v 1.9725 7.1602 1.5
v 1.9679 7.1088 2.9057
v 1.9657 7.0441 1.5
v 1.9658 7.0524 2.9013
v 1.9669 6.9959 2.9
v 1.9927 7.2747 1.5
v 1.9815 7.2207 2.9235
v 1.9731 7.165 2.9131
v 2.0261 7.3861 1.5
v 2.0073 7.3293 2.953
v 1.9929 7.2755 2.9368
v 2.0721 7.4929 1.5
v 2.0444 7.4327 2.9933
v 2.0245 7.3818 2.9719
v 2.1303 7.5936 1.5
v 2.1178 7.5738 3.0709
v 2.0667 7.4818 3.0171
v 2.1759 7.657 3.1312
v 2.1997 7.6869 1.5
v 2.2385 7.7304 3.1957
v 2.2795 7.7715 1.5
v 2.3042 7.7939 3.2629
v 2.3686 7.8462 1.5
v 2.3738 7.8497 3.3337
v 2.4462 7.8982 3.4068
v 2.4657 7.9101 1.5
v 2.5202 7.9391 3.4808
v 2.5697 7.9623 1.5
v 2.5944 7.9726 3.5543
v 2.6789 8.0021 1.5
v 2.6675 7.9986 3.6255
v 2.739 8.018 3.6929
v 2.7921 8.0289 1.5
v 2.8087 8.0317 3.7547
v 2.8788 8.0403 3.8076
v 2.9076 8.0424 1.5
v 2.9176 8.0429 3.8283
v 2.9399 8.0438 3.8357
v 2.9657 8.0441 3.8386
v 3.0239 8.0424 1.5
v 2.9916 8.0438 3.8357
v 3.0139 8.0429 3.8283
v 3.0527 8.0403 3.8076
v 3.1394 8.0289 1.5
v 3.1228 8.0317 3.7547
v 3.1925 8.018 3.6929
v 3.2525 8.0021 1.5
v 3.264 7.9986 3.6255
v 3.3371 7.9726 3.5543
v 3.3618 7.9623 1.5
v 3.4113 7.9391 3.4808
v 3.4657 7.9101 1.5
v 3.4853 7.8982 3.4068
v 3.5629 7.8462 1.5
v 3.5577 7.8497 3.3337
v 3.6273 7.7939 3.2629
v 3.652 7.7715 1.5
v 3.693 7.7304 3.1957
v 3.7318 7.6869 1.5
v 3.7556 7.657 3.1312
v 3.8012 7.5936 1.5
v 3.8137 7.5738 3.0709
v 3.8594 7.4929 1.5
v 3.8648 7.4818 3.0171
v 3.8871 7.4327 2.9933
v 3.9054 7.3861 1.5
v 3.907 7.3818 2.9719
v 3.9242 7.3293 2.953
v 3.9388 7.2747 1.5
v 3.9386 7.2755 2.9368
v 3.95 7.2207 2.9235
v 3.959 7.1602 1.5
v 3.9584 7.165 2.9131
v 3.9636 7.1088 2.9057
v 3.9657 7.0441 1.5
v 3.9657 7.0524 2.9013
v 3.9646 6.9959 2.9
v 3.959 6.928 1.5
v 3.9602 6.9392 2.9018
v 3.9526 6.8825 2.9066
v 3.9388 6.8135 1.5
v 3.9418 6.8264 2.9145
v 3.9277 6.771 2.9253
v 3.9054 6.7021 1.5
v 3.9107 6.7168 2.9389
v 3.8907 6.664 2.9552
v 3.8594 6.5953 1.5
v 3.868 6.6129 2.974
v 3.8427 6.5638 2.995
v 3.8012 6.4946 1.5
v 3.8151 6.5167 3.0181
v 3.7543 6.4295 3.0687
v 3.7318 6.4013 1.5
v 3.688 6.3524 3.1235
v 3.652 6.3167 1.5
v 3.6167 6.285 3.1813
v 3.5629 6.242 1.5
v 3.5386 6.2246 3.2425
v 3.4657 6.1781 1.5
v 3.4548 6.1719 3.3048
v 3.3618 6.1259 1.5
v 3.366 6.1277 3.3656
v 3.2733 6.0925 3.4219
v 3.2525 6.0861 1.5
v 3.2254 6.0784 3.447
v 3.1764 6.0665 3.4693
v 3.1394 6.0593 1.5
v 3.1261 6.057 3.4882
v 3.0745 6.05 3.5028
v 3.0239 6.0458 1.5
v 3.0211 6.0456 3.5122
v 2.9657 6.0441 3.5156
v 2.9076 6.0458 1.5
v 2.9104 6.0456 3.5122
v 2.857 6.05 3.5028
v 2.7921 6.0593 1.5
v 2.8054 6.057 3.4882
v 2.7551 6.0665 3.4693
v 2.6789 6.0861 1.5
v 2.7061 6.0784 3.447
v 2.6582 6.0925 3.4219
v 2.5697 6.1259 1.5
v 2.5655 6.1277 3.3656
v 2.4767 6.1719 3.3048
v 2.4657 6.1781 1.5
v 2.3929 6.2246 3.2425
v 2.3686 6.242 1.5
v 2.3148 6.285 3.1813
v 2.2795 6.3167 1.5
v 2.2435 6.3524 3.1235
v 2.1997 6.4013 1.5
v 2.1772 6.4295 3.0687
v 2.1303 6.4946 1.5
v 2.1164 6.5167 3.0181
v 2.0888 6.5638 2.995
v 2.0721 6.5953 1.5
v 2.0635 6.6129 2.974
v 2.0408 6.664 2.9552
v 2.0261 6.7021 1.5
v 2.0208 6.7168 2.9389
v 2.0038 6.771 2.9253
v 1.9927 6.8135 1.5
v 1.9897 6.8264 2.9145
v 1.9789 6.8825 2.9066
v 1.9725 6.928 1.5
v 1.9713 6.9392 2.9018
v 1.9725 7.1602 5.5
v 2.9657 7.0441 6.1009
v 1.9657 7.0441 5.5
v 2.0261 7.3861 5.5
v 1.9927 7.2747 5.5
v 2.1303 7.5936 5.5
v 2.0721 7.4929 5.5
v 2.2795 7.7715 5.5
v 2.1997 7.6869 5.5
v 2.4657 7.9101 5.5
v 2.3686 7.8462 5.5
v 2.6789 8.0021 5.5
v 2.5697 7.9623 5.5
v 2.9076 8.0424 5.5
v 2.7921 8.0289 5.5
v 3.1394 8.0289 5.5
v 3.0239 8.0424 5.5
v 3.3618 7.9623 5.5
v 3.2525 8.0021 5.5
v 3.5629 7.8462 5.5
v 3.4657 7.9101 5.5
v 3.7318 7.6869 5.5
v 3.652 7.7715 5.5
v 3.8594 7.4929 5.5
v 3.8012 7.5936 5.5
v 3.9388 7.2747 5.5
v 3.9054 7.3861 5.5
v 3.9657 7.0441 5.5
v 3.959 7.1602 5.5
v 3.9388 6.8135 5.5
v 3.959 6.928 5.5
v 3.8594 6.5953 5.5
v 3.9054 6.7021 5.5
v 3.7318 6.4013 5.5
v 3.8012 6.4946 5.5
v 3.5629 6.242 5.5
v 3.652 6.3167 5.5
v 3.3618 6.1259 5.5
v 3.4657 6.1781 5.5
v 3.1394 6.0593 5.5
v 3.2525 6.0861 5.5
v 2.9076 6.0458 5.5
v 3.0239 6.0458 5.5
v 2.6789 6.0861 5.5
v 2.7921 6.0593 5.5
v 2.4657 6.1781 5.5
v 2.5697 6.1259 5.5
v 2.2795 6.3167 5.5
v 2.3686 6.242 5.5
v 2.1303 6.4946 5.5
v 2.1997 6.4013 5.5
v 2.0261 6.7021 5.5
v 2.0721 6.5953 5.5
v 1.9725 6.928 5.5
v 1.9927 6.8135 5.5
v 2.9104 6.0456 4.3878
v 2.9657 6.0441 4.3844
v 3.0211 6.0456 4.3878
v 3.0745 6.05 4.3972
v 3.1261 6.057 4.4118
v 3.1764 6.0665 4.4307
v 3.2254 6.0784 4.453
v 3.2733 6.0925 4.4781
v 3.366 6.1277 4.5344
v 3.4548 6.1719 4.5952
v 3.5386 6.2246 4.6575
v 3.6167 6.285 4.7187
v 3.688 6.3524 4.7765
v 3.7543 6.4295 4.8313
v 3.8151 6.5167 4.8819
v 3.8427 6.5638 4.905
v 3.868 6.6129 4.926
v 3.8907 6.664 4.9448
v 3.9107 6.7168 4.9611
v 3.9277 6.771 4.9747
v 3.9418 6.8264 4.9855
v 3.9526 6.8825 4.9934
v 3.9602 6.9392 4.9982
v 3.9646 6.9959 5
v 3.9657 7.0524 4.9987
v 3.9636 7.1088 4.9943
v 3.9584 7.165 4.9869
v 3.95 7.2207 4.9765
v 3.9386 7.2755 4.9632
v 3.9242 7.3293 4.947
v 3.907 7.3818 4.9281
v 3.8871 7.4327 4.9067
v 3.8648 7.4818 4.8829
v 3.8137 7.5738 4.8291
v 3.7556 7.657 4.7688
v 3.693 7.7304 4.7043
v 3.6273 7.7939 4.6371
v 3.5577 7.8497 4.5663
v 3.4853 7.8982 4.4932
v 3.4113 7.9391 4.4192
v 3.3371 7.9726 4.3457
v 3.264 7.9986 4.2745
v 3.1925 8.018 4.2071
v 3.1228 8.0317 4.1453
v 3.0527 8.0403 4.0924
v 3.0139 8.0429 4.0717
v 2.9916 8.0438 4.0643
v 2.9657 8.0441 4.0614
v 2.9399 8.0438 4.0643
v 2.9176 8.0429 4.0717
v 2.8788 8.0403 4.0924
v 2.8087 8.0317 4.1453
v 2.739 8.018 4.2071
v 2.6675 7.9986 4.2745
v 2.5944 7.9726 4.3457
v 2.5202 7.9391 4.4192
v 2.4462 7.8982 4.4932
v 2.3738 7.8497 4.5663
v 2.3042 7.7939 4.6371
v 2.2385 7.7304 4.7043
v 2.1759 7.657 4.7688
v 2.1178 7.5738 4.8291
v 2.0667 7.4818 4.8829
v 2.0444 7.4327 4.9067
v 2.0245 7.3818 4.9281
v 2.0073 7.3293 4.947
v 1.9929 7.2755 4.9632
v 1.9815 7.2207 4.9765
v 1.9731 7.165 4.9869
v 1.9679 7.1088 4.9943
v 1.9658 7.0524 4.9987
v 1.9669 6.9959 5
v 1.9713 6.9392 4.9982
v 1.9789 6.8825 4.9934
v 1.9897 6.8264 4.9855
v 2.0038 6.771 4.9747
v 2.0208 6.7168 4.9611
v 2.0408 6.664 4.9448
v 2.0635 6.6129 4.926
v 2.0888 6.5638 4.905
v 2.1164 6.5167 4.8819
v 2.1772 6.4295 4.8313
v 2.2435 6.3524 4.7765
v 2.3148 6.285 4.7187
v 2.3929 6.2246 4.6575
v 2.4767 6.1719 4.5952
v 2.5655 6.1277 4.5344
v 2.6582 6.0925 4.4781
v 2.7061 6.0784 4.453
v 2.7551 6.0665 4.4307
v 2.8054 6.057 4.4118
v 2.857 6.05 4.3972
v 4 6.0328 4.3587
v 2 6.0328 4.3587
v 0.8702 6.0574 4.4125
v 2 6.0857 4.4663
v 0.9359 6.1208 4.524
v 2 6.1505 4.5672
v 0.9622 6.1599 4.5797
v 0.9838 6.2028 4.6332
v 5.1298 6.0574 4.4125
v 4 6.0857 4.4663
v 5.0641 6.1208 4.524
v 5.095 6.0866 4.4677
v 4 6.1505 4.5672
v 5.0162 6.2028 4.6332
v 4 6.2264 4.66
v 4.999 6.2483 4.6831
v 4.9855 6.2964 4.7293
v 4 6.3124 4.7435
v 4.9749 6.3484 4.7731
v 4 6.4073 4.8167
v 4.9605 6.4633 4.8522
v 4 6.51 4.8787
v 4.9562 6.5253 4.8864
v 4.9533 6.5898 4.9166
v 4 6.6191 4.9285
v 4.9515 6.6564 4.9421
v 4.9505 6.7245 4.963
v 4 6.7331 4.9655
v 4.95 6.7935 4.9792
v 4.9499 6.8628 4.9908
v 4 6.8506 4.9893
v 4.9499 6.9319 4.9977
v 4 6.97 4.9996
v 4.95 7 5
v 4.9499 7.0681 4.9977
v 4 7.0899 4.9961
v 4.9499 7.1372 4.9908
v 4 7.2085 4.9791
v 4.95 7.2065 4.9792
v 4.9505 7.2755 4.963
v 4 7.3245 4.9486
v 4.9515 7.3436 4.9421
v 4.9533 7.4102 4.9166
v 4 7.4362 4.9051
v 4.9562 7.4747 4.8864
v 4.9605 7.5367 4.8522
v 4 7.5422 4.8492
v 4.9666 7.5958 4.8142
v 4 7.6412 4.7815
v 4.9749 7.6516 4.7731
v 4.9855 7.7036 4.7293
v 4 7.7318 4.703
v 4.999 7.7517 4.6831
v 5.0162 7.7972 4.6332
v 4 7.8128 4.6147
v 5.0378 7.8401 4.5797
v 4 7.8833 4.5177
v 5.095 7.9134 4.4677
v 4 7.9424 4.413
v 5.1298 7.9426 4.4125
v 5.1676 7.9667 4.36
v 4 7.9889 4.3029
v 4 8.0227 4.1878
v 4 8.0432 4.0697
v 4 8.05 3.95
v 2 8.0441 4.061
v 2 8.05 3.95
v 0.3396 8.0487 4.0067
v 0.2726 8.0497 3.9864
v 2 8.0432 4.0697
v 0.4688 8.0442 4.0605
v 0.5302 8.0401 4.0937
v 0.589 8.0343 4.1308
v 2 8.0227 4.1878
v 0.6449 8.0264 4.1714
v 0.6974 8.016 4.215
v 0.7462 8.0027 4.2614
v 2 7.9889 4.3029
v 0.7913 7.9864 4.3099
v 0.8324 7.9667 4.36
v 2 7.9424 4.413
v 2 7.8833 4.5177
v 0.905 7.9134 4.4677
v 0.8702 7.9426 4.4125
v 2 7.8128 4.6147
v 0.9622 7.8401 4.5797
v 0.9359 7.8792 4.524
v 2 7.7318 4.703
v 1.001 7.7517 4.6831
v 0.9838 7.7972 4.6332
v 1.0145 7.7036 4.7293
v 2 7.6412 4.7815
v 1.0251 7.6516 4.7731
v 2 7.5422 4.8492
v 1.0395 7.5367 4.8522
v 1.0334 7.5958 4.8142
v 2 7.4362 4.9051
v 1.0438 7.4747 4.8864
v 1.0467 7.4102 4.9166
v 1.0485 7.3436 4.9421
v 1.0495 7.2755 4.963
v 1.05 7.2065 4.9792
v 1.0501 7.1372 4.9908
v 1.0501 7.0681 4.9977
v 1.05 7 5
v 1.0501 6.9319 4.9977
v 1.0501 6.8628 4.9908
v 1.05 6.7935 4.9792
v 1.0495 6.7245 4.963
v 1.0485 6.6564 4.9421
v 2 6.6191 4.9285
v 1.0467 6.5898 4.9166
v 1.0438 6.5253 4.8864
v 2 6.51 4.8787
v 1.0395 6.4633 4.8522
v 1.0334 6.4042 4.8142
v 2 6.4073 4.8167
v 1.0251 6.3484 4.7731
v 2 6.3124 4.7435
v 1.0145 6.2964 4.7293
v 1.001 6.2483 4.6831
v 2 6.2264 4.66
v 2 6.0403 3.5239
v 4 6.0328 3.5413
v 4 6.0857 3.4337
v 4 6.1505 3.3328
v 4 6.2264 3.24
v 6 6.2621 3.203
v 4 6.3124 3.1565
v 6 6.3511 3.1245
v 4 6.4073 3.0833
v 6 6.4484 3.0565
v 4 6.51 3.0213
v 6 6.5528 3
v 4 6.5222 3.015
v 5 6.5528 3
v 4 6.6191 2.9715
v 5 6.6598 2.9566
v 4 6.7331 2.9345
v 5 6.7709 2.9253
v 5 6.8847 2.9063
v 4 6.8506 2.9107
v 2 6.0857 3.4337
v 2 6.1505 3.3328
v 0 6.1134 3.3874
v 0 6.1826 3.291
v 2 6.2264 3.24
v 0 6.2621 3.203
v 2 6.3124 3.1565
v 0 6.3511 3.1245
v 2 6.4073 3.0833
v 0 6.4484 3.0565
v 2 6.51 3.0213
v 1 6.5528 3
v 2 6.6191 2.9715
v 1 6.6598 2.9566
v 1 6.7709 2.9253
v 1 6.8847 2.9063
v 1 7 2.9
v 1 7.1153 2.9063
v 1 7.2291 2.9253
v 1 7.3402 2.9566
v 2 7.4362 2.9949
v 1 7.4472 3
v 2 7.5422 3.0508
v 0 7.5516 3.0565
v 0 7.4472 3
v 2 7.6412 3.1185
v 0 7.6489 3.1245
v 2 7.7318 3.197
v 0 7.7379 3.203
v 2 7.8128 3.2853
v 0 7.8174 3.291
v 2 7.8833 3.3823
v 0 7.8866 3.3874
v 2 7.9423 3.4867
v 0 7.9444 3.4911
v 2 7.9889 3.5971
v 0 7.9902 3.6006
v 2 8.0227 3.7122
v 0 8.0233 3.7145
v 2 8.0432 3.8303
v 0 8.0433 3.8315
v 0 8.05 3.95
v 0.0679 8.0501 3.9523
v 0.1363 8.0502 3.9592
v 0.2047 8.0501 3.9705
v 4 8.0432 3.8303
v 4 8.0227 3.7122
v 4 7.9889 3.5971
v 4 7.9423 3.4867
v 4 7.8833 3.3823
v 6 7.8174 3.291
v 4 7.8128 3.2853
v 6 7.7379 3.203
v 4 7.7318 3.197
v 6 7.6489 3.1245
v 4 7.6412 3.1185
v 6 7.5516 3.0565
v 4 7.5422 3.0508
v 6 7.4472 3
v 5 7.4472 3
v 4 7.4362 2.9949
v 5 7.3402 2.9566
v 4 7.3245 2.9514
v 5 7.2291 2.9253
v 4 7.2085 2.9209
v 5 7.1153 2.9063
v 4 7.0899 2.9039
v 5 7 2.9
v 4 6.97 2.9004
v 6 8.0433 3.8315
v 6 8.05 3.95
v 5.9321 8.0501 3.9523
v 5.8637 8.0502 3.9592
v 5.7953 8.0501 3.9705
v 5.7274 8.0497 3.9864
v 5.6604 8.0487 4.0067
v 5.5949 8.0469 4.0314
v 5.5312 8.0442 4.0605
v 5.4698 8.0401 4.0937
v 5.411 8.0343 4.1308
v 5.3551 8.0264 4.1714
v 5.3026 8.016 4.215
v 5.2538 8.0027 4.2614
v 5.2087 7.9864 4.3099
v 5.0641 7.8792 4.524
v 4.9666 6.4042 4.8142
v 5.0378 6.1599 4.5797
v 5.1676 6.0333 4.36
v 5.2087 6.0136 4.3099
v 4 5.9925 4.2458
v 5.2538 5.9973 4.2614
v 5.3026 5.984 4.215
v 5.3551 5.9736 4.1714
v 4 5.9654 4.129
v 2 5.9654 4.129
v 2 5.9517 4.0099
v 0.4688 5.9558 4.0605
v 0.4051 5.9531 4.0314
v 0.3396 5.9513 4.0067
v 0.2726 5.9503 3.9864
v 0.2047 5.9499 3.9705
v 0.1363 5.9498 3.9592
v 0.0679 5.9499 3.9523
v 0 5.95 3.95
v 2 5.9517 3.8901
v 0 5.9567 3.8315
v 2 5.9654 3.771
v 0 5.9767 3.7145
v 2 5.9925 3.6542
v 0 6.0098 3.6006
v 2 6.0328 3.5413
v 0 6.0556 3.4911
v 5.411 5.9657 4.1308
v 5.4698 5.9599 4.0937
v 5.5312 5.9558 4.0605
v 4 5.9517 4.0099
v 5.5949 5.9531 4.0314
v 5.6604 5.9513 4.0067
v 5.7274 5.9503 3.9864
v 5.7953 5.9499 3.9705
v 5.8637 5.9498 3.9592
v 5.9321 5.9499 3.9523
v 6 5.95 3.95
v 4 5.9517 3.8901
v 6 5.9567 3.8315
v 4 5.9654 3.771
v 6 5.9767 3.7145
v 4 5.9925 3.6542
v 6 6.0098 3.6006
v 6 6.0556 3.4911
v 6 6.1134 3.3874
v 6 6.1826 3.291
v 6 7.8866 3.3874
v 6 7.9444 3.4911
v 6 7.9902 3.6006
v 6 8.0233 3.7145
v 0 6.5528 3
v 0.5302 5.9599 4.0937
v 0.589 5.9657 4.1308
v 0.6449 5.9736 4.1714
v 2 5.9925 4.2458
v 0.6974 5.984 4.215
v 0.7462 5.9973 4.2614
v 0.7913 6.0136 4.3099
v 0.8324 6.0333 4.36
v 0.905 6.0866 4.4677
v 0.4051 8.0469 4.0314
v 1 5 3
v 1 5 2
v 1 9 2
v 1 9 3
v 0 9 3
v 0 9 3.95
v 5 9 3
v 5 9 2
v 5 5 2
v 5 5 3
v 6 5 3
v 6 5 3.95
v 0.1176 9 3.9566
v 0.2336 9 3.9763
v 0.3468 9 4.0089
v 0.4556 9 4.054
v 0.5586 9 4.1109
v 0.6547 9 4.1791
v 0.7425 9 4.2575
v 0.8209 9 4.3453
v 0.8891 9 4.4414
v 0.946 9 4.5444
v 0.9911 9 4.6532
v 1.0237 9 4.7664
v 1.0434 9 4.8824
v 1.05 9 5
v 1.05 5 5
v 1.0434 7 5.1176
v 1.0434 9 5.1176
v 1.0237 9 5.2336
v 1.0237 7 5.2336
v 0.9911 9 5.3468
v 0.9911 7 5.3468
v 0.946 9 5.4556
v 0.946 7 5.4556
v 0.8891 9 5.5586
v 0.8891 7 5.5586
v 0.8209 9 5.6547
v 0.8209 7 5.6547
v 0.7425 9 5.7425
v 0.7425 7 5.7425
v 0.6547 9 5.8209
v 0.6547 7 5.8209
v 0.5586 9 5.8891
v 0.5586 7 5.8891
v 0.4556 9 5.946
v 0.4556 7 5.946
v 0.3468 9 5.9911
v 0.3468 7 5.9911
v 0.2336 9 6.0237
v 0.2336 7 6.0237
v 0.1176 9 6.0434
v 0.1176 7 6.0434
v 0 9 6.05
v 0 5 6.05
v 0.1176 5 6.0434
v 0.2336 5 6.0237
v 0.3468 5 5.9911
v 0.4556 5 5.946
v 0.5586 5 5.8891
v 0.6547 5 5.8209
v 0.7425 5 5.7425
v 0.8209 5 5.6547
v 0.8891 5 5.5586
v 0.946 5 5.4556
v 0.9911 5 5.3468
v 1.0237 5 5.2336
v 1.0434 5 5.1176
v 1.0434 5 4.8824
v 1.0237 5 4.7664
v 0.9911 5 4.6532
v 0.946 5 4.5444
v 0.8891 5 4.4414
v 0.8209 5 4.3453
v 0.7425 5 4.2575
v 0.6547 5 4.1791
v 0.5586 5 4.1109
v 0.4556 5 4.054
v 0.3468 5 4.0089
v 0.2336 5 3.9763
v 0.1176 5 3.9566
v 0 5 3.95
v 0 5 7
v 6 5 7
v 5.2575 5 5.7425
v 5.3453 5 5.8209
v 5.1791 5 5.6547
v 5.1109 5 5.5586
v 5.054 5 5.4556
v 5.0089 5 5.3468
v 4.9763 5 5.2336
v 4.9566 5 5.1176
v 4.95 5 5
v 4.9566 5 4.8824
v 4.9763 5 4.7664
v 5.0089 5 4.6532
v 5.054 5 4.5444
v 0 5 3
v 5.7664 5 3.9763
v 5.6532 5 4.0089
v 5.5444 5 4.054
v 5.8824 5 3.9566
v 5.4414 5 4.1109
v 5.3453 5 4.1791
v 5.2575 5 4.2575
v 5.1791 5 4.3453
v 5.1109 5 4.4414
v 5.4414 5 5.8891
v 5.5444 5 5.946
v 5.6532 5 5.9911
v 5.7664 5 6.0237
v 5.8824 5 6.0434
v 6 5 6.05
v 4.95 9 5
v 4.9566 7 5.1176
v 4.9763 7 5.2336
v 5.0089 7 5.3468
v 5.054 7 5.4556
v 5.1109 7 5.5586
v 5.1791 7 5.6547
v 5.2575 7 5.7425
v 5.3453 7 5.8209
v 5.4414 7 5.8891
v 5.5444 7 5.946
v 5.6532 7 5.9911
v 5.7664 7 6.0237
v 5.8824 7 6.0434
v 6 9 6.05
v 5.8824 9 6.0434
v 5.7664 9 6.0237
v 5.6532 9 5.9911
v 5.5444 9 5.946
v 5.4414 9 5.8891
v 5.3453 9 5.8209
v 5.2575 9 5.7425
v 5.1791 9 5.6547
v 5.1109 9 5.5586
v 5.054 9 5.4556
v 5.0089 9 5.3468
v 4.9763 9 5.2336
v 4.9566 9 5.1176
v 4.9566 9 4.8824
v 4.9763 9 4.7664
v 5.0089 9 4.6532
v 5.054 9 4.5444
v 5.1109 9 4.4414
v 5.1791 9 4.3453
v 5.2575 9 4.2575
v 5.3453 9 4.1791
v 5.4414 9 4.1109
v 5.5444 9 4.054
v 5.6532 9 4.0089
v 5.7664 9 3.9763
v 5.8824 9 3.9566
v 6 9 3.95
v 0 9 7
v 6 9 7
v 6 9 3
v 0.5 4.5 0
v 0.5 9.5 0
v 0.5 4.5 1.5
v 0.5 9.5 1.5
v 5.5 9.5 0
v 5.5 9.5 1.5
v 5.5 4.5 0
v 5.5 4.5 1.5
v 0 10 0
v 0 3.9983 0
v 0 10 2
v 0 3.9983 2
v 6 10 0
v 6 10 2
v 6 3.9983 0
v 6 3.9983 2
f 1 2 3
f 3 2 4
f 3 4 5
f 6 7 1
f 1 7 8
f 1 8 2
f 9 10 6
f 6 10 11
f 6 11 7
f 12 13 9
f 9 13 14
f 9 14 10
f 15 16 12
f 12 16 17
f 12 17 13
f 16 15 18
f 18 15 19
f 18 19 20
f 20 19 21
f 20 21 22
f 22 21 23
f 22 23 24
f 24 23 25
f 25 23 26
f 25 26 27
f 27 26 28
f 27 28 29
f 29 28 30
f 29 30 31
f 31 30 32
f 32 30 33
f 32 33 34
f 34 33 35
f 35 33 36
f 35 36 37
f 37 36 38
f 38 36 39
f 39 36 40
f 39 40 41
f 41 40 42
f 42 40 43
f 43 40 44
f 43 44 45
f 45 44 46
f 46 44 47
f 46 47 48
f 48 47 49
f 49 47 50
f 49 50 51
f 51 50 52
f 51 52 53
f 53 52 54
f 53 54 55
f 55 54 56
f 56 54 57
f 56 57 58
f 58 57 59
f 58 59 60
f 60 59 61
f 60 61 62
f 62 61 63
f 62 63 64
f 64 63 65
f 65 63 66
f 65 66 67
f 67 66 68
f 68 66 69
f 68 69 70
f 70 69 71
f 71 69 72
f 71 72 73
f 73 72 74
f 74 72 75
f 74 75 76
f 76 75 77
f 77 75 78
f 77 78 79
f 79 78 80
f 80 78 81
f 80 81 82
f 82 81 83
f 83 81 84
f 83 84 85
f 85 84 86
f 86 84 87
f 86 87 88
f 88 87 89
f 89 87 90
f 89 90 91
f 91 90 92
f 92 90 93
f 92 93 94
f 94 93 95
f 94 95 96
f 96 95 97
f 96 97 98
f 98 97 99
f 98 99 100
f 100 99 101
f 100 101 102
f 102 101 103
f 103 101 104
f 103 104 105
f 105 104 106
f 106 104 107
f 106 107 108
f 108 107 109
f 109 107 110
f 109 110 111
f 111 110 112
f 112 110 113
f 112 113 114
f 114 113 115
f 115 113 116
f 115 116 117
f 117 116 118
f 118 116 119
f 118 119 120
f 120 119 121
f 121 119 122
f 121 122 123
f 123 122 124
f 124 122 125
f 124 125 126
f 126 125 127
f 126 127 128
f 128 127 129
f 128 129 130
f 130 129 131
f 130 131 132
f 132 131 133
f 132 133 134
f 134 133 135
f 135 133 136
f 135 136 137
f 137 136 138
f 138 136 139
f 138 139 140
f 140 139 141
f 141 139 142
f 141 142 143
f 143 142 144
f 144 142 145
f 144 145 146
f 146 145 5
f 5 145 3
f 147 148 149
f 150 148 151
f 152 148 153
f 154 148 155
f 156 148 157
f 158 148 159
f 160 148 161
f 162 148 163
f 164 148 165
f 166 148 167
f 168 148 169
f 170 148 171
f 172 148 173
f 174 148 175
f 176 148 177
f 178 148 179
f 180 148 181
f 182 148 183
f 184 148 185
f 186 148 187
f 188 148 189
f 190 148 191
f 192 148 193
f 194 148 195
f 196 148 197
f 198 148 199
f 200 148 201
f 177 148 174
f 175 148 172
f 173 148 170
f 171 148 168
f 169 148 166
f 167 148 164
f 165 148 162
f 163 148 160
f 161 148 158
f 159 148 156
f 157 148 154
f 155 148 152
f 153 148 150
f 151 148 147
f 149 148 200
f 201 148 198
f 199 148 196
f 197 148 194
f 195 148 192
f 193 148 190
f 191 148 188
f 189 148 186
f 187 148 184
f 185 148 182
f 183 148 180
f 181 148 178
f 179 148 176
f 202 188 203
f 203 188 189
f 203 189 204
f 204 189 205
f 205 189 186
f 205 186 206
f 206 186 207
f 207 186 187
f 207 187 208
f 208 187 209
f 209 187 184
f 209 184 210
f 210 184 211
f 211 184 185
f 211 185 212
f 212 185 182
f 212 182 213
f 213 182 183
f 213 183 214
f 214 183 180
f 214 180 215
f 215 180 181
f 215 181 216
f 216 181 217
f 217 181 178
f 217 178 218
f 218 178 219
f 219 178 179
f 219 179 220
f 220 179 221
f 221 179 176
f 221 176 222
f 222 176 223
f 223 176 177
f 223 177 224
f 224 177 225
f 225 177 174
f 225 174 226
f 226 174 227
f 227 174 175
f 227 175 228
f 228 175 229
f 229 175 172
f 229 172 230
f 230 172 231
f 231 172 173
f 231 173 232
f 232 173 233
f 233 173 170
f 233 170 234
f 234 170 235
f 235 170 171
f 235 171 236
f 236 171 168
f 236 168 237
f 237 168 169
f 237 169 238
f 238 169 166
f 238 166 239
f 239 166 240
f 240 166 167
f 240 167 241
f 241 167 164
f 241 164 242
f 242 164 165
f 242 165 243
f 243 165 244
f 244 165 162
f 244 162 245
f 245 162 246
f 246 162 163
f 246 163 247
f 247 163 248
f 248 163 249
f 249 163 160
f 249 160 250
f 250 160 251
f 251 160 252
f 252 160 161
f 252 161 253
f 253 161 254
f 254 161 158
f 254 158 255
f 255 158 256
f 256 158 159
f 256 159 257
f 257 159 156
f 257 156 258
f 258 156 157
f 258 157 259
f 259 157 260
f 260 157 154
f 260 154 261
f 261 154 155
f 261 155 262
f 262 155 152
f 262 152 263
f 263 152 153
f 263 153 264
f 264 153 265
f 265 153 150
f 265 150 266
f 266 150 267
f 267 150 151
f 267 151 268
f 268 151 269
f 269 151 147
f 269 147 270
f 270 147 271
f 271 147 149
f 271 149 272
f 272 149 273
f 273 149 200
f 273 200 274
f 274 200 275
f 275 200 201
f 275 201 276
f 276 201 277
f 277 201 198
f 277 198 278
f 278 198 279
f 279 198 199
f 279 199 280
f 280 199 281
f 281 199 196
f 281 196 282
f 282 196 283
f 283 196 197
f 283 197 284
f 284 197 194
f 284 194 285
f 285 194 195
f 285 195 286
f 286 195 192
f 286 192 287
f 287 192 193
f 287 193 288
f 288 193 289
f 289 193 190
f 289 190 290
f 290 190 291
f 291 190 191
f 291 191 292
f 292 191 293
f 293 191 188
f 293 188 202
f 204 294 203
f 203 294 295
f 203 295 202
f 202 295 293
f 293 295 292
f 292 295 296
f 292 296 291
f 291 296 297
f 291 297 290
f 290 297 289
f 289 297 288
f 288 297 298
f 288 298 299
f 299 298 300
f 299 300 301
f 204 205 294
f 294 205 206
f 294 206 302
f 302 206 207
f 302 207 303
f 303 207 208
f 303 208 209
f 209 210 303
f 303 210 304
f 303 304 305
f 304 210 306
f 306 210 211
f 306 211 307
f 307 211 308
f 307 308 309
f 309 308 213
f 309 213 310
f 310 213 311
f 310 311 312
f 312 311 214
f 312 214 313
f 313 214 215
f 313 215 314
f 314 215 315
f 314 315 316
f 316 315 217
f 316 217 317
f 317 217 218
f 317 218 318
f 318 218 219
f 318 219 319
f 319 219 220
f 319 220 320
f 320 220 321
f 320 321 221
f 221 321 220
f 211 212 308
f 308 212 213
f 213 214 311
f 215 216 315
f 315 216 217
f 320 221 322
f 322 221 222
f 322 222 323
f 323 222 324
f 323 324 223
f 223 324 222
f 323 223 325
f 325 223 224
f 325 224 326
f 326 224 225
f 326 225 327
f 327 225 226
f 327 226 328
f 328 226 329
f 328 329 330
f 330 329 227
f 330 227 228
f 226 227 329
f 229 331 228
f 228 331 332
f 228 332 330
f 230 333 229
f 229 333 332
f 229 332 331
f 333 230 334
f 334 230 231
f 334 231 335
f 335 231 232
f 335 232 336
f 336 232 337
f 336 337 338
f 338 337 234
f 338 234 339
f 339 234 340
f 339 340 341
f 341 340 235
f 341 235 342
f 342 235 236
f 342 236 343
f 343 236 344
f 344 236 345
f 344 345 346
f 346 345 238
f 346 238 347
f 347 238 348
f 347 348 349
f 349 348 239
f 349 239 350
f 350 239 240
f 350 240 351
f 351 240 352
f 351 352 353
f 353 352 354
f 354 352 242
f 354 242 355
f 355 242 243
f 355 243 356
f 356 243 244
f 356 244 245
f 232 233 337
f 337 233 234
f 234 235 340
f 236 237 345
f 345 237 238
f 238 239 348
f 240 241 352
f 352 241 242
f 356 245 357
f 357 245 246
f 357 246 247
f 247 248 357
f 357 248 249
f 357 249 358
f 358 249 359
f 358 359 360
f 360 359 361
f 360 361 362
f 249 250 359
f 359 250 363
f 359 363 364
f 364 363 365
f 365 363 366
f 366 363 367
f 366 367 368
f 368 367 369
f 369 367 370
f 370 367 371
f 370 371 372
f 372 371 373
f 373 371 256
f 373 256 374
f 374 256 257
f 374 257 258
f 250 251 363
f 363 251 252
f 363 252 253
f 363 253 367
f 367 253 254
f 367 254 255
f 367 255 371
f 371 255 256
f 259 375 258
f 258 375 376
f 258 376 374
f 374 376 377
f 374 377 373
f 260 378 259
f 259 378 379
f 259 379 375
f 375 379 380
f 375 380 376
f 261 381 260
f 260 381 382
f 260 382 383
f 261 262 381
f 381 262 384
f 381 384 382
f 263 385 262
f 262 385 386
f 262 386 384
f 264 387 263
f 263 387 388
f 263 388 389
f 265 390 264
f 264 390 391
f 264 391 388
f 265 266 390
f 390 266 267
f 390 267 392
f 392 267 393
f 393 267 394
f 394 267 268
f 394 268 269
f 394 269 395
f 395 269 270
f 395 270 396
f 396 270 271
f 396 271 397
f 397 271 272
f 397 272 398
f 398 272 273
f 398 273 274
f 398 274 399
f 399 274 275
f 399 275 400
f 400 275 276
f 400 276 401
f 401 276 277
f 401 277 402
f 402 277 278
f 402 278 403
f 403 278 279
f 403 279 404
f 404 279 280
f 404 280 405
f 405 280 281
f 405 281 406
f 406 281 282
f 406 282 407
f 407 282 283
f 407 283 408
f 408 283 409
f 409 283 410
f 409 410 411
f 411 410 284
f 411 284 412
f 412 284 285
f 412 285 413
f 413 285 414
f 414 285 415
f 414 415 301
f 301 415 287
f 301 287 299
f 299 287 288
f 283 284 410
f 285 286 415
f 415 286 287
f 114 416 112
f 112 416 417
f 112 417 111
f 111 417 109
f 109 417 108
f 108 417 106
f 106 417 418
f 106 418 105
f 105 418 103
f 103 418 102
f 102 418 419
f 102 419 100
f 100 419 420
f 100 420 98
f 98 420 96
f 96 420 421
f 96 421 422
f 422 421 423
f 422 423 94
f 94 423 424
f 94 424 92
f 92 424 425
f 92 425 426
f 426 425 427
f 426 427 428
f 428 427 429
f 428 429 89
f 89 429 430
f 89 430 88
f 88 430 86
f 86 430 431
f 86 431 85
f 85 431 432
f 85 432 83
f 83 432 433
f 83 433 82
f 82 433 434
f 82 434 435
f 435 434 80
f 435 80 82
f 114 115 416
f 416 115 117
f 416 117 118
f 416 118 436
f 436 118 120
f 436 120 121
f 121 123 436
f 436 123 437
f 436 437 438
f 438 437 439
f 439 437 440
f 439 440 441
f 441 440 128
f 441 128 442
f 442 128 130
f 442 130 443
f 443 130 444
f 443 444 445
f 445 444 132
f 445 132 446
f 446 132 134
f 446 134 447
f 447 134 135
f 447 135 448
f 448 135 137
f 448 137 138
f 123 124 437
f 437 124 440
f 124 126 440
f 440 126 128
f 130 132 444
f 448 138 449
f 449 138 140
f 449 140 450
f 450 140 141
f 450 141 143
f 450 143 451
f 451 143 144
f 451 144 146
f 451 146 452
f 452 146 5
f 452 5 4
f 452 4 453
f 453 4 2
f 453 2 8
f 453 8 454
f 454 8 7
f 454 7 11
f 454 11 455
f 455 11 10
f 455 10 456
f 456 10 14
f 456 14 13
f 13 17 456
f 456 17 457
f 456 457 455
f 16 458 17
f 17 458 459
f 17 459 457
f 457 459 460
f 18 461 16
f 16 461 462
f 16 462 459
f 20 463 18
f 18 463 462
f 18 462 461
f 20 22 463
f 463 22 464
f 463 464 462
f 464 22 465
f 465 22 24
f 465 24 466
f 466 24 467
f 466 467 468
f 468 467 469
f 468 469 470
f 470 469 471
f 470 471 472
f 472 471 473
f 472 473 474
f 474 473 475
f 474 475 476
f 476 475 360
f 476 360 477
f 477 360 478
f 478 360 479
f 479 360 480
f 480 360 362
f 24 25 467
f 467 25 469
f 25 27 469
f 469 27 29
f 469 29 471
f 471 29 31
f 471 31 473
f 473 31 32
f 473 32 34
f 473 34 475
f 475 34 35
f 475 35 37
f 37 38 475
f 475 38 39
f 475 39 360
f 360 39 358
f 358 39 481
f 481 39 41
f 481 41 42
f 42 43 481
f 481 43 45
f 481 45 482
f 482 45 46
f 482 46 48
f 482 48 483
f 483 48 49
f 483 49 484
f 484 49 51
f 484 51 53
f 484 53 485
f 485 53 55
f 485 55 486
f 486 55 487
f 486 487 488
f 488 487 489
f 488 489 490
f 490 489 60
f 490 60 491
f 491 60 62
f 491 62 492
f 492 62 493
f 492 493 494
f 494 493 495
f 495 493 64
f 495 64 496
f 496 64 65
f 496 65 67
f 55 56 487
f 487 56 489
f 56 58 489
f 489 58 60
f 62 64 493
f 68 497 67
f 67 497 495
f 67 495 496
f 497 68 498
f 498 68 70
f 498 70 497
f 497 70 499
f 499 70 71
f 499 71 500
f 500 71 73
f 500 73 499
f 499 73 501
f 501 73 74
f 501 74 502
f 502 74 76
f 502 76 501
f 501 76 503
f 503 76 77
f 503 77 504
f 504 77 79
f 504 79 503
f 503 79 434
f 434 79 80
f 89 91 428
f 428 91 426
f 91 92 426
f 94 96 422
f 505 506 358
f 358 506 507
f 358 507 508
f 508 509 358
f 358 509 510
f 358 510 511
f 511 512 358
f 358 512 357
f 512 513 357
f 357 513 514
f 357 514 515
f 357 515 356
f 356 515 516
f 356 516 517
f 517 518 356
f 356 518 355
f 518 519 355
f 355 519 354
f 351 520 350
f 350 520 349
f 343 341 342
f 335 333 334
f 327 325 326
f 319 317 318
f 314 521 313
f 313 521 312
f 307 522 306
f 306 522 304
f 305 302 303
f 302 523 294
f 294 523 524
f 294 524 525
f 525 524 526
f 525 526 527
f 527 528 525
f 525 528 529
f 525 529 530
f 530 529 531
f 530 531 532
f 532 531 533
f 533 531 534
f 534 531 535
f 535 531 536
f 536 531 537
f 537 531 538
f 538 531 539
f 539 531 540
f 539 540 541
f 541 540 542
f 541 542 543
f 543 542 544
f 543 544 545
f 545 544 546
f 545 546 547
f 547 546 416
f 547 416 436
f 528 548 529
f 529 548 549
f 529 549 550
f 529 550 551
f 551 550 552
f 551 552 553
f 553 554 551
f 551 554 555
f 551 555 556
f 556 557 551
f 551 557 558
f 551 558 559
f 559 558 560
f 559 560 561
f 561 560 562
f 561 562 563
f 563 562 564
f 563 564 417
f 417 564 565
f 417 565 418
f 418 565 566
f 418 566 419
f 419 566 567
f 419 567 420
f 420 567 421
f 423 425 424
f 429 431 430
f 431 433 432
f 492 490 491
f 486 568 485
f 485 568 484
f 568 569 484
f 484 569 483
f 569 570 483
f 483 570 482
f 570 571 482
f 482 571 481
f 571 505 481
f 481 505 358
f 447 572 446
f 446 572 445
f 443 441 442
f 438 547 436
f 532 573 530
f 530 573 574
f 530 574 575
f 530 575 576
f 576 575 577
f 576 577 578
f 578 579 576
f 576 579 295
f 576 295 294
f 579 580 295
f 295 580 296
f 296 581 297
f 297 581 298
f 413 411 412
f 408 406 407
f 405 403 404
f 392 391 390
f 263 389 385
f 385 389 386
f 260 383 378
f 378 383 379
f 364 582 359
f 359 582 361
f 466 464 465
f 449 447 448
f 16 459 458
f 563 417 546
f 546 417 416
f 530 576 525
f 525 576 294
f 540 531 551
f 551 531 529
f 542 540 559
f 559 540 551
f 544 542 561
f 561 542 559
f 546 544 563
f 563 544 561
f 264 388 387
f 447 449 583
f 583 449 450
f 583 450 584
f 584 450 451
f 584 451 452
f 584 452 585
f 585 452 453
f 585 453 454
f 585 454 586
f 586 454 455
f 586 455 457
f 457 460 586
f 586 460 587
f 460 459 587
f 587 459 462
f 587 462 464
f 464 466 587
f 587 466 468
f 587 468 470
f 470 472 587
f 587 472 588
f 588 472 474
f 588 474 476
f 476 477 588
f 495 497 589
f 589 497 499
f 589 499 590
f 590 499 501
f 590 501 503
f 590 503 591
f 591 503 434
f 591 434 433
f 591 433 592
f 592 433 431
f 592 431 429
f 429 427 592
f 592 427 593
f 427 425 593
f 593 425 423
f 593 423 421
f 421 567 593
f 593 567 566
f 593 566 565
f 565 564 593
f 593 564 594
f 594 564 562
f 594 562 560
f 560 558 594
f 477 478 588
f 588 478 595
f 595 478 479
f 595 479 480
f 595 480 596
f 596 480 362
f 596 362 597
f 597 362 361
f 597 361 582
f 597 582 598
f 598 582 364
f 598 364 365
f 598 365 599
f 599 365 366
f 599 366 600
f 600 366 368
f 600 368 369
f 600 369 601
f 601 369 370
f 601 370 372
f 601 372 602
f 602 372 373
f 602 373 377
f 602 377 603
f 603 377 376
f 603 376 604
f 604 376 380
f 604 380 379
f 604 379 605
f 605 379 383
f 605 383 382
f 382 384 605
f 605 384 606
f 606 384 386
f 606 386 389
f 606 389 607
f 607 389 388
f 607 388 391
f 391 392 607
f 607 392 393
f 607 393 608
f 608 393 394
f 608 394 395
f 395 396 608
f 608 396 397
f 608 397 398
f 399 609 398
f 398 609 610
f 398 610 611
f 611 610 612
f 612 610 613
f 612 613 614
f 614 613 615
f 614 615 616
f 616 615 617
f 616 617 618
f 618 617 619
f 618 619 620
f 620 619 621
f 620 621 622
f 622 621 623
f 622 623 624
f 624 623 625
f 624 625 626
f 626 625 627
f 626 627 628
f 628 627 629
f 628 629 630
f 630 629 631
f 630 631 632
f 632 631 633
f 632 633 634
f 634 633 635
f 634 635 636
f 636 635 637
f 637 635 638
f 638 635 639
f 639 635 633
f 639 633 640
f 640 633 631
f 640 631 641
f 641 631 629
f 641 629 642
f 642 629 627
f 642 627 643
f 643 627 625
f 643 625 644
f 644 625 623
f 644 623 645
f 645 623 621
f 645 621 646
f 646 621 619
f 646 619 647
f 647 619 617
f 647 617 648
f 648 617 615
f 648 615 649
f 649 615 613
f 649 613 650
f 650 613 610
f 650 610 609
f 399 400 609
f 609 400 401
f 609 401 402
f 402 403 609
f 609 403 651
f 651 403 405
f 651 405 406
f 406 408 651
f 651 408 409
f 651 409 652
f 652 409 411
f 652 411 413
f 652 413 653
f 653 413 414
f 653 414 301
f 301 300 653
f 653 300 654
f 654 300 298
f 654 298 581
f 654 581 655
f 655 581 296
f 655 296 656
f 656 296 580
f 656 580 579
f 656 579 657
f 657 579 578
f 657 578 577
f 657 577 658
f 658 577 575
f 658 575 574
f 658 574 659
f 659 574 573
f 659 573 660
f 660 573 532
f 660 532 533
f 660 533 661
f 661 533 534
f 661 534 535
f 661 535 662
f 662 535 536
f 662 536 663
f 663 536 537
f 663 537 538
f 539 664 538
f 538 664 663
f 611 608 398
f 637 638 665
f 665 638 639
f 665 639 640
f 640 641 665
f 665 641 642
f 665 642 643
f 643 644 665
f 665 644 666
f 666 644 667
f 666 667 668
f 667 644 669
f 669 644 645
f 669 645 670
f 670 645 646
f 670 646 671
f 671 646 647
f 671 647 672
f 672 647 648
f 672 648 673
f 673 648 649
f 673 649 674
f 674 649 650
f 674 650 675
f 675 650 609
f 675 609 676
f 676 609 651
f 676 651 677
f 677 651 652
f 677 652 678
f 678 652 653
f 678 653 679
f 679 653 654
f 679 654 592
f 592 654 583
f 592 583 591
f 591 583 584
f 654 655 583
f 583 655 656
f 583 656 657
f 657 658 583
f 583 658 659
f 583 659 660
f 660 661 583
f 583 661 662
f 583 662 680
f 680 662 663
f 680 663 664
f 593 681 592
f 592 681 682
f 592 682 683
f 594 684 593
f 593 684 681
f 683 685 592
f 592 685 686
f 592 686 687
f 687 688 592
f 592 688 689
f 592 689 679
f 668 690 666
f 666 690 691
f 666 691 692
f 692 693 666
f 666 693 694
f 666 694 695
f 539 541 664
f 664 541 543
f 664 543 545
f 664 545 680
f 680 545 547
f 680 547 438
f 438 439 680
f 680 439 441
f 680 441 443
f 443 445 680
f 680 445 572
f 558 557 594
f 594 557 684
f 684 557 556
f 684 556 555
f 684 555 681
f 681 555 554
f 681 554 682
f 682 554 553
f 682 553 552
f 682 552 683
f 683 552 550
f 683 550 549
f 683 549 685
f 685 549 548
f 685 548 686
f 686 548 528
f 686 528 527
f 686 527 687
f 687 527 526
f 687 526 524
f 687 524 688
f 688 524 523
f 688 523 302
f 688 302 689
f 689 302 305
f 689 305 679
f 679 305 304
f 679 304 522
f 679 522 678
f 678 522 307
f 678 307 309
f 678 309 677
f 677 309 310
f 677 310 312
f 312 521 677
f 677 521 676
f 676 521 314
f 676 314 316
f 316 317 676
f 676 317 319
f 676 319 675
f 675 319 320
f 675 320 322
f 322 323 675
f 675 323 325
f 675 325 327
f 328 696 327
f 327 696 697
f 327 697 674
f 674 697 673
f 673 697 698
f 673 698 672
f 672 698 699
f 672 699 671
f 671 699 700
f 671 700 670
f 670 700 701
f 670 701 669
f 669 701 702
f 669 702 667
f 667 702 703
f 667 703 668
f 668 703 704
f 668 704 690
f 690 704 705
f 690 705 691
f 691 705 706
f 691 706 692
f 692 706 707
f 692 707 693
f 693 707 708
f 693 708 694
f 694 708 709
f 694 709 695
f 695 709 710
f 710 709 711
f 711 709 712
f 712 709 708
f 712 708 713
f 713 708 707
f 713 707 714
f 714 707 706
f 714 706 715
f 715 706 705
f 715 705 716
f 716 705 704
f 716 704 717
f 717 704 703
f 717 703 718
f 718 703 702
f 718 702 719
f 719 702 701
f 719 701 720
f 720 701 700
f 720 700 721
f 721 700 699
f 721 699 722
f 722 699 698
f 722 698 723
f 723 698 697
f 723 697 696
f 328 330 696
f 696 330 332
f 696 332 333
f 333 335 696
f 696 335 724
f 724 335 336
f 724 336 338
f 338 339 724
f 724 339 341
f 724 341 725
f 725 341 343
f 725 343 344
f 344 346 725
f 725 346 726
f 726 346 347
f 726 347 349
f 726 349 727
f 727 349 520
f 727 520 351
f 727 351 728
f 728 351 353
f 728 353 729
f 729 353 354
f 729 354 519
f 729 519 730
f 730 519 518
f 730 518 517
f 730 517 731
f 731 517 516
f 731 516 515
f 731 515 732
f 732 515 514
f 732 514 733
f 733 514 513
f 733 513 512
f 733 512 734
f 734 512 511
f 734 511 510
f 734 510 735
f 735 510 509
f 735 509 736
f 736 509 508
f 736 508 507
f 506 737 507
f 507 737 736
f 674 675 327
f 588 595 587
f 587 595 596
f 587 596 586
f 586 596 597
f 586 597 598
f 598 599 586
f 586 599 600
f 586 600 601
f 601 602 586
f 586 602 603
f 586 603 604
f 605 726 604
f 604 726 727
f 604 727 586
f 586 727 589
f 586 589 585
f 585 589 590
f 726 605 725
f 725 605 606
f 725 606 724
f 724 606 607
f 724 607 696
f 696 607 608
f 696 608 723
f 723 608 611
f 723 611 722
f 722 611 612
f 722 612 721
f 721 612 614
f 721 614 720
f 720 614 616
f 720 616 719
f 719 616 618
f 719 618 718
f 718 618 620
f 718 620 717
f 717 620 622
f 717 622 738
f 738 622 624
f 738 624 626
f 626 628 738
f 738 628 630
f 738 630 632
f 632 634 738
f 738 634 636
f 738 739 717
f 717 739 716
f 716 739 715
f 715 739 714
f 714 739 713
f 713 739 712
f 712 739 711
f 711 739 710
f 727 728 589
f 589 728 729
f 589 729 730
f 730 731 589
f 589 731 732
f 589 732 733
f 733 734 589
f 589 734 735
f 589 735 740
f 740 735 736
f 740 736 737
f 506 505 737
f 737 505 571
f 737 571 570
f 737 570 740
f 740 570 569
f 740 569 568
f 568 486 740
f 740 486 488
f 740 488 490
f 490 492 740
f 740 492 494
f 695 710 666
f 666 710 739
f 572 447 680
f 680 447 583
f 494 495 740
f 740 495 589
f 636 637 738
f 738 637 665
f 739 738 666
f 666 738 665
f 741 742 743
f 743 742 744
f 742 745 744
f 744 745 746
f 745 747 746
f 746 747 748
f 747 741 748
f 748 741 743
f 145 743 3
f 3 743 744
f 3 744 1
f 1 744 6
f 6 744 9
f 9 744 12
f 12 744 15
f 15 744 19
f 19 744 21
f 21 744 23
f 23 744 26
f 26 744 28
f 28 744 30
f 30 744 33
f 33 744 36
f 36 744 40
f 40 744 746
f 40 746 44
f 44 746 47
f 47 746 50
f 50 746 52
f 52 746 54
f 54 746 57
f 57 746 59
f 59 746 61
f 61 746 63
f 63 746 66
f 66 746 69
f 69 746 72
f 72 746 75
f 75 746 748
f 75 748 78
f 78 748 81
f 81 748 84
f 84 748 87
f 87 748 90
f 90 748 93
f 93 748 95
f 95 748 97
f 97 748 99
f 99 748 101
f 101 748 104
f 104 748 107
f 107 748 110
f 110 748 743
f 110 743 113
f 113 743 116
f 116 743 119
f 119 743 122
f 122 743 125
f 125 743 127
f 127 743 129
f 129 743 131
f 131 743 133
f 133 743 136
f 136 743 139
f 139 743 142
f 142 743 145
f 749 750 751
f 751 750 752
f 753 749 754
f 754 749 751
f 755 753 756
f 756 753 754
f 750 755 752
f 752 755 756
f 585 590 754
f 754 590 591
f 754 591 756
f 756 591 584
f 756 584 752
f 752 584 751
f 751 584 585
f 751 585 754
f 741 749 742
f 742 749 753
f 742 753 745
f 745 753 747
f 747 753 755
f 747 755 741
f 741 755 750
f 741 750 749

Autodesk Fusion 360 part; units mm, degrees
sketch "草图1" plane through (0, 0, 0) normal (0, 0, 1) x (1, 0, 0)
  line L0 (0, 10) -> (6, 10)
  line L1 (6, 10) -> (6, 3.9983)
  line L2 (6, 3.9983) -> (0, 3.9983)
  line L3 (0, 3.9983) -> (0, 10)
  dimension "d1" = 6
extrude "拉伸1" add sketch "草图1" along normal blind 2
sketch "草图2" plane through (0, 0, 0) normal (0, 0, -1) x (1, 0, 0)
  line L0 (6, -3.9983) -> (0, -3.9983)
  line L1 (0, -3.9983) -> (0, -10)
  line L2 (0, -10) -> (6, -10)
  line L3 (6, -10) -> (6, -3.9983)
sketch "草图3" plane through (0, 0, 0) normal (0, 0, -1) x (1, 0, 0)
  line L0 (5.5, -9.5) -> (0.5, -9.5)
  line L1 (0.5, -9.5) -> (0.5, -4.5)
  line L2 (0.5, -4.5) -> (5.5, -4.5)
  line L3 (5.5, -4.5) -> (5.5, -9.5)
extrude "拉伸2" cut sketch "草图3" against normal blind 1.5
sketch "草图4" plane through (0, 0, 2) normal (0, 0, 1) x (-1, 0, 0)
  line L0 (0, -3.9983) -> (-6, -3.9983)
  line L1 (-6, -3.9983) -> (-6, -10)
  line L2 (-6, -10) -> (0, -10)
  line L3 (0, -10) -> (0, -3.9983)
  line L4 (-5, -5) -> (-1, -5)
  line L5 (-1, -5) -> (-1, -9)
  line L6 (-1, -9) -> (-5, -9)
  line L7 (-5, -9) -> (-5, -5)
extrude "拉伸3" add sketch "草图4" along normal blind 1 contours L4 L5 L6 L7
sketch "草图5" plane through (0, 0, 3) normal (0, 0, 1) x (-1, 0, 0)
  line L0 (-5, -9) -> (-1, -9)
  line L1 (-1, -9) -> (-1, -5)
  line L2 (-1, -5) -> (-5, -5)
  line L3 (-5, -5) -> (-5, -9)
  line L4 (-6, -5) -> (0, -5)
  line L5 (0, -5) -> (0, -9)
  line L6 (0, -9) -> (-6, -9)
  line L7 (-6, -9) -> (-6, -5)
extrude "拉伸4" add sketch "草图5" along normal blind 4
hole "孔1" at (6, 9, 5) direction (0, -1, 0) diameter 2.1 depth 6.5 tip angle 118
hole "孔2" at (0, 9, 5) direction (0, -1, 0) diameter 2.1 depth 6.5 tip angle 118
hole "孔3" at (0, 7, 3.95) direction (1, 0, 0) diameter 2.1 depth 6.5 tip angle 118
sketch "草图6" plane through (0, 0, 7) normal (0, 0, 1) x (-1, 0, 0)
  line L0 (-6, -9) -> (0, -9)
  line L1 (0, -9) -> (0, -5)
  line L2 (0, -5) -> (-6, -5)
  line L3 (-6, -5) -> (-6, -9)
hole "孔4" at (2.9657, 7.0441, 1.5) direction (0, 0, 1) diameter 2 depth 4 tip angle 118
